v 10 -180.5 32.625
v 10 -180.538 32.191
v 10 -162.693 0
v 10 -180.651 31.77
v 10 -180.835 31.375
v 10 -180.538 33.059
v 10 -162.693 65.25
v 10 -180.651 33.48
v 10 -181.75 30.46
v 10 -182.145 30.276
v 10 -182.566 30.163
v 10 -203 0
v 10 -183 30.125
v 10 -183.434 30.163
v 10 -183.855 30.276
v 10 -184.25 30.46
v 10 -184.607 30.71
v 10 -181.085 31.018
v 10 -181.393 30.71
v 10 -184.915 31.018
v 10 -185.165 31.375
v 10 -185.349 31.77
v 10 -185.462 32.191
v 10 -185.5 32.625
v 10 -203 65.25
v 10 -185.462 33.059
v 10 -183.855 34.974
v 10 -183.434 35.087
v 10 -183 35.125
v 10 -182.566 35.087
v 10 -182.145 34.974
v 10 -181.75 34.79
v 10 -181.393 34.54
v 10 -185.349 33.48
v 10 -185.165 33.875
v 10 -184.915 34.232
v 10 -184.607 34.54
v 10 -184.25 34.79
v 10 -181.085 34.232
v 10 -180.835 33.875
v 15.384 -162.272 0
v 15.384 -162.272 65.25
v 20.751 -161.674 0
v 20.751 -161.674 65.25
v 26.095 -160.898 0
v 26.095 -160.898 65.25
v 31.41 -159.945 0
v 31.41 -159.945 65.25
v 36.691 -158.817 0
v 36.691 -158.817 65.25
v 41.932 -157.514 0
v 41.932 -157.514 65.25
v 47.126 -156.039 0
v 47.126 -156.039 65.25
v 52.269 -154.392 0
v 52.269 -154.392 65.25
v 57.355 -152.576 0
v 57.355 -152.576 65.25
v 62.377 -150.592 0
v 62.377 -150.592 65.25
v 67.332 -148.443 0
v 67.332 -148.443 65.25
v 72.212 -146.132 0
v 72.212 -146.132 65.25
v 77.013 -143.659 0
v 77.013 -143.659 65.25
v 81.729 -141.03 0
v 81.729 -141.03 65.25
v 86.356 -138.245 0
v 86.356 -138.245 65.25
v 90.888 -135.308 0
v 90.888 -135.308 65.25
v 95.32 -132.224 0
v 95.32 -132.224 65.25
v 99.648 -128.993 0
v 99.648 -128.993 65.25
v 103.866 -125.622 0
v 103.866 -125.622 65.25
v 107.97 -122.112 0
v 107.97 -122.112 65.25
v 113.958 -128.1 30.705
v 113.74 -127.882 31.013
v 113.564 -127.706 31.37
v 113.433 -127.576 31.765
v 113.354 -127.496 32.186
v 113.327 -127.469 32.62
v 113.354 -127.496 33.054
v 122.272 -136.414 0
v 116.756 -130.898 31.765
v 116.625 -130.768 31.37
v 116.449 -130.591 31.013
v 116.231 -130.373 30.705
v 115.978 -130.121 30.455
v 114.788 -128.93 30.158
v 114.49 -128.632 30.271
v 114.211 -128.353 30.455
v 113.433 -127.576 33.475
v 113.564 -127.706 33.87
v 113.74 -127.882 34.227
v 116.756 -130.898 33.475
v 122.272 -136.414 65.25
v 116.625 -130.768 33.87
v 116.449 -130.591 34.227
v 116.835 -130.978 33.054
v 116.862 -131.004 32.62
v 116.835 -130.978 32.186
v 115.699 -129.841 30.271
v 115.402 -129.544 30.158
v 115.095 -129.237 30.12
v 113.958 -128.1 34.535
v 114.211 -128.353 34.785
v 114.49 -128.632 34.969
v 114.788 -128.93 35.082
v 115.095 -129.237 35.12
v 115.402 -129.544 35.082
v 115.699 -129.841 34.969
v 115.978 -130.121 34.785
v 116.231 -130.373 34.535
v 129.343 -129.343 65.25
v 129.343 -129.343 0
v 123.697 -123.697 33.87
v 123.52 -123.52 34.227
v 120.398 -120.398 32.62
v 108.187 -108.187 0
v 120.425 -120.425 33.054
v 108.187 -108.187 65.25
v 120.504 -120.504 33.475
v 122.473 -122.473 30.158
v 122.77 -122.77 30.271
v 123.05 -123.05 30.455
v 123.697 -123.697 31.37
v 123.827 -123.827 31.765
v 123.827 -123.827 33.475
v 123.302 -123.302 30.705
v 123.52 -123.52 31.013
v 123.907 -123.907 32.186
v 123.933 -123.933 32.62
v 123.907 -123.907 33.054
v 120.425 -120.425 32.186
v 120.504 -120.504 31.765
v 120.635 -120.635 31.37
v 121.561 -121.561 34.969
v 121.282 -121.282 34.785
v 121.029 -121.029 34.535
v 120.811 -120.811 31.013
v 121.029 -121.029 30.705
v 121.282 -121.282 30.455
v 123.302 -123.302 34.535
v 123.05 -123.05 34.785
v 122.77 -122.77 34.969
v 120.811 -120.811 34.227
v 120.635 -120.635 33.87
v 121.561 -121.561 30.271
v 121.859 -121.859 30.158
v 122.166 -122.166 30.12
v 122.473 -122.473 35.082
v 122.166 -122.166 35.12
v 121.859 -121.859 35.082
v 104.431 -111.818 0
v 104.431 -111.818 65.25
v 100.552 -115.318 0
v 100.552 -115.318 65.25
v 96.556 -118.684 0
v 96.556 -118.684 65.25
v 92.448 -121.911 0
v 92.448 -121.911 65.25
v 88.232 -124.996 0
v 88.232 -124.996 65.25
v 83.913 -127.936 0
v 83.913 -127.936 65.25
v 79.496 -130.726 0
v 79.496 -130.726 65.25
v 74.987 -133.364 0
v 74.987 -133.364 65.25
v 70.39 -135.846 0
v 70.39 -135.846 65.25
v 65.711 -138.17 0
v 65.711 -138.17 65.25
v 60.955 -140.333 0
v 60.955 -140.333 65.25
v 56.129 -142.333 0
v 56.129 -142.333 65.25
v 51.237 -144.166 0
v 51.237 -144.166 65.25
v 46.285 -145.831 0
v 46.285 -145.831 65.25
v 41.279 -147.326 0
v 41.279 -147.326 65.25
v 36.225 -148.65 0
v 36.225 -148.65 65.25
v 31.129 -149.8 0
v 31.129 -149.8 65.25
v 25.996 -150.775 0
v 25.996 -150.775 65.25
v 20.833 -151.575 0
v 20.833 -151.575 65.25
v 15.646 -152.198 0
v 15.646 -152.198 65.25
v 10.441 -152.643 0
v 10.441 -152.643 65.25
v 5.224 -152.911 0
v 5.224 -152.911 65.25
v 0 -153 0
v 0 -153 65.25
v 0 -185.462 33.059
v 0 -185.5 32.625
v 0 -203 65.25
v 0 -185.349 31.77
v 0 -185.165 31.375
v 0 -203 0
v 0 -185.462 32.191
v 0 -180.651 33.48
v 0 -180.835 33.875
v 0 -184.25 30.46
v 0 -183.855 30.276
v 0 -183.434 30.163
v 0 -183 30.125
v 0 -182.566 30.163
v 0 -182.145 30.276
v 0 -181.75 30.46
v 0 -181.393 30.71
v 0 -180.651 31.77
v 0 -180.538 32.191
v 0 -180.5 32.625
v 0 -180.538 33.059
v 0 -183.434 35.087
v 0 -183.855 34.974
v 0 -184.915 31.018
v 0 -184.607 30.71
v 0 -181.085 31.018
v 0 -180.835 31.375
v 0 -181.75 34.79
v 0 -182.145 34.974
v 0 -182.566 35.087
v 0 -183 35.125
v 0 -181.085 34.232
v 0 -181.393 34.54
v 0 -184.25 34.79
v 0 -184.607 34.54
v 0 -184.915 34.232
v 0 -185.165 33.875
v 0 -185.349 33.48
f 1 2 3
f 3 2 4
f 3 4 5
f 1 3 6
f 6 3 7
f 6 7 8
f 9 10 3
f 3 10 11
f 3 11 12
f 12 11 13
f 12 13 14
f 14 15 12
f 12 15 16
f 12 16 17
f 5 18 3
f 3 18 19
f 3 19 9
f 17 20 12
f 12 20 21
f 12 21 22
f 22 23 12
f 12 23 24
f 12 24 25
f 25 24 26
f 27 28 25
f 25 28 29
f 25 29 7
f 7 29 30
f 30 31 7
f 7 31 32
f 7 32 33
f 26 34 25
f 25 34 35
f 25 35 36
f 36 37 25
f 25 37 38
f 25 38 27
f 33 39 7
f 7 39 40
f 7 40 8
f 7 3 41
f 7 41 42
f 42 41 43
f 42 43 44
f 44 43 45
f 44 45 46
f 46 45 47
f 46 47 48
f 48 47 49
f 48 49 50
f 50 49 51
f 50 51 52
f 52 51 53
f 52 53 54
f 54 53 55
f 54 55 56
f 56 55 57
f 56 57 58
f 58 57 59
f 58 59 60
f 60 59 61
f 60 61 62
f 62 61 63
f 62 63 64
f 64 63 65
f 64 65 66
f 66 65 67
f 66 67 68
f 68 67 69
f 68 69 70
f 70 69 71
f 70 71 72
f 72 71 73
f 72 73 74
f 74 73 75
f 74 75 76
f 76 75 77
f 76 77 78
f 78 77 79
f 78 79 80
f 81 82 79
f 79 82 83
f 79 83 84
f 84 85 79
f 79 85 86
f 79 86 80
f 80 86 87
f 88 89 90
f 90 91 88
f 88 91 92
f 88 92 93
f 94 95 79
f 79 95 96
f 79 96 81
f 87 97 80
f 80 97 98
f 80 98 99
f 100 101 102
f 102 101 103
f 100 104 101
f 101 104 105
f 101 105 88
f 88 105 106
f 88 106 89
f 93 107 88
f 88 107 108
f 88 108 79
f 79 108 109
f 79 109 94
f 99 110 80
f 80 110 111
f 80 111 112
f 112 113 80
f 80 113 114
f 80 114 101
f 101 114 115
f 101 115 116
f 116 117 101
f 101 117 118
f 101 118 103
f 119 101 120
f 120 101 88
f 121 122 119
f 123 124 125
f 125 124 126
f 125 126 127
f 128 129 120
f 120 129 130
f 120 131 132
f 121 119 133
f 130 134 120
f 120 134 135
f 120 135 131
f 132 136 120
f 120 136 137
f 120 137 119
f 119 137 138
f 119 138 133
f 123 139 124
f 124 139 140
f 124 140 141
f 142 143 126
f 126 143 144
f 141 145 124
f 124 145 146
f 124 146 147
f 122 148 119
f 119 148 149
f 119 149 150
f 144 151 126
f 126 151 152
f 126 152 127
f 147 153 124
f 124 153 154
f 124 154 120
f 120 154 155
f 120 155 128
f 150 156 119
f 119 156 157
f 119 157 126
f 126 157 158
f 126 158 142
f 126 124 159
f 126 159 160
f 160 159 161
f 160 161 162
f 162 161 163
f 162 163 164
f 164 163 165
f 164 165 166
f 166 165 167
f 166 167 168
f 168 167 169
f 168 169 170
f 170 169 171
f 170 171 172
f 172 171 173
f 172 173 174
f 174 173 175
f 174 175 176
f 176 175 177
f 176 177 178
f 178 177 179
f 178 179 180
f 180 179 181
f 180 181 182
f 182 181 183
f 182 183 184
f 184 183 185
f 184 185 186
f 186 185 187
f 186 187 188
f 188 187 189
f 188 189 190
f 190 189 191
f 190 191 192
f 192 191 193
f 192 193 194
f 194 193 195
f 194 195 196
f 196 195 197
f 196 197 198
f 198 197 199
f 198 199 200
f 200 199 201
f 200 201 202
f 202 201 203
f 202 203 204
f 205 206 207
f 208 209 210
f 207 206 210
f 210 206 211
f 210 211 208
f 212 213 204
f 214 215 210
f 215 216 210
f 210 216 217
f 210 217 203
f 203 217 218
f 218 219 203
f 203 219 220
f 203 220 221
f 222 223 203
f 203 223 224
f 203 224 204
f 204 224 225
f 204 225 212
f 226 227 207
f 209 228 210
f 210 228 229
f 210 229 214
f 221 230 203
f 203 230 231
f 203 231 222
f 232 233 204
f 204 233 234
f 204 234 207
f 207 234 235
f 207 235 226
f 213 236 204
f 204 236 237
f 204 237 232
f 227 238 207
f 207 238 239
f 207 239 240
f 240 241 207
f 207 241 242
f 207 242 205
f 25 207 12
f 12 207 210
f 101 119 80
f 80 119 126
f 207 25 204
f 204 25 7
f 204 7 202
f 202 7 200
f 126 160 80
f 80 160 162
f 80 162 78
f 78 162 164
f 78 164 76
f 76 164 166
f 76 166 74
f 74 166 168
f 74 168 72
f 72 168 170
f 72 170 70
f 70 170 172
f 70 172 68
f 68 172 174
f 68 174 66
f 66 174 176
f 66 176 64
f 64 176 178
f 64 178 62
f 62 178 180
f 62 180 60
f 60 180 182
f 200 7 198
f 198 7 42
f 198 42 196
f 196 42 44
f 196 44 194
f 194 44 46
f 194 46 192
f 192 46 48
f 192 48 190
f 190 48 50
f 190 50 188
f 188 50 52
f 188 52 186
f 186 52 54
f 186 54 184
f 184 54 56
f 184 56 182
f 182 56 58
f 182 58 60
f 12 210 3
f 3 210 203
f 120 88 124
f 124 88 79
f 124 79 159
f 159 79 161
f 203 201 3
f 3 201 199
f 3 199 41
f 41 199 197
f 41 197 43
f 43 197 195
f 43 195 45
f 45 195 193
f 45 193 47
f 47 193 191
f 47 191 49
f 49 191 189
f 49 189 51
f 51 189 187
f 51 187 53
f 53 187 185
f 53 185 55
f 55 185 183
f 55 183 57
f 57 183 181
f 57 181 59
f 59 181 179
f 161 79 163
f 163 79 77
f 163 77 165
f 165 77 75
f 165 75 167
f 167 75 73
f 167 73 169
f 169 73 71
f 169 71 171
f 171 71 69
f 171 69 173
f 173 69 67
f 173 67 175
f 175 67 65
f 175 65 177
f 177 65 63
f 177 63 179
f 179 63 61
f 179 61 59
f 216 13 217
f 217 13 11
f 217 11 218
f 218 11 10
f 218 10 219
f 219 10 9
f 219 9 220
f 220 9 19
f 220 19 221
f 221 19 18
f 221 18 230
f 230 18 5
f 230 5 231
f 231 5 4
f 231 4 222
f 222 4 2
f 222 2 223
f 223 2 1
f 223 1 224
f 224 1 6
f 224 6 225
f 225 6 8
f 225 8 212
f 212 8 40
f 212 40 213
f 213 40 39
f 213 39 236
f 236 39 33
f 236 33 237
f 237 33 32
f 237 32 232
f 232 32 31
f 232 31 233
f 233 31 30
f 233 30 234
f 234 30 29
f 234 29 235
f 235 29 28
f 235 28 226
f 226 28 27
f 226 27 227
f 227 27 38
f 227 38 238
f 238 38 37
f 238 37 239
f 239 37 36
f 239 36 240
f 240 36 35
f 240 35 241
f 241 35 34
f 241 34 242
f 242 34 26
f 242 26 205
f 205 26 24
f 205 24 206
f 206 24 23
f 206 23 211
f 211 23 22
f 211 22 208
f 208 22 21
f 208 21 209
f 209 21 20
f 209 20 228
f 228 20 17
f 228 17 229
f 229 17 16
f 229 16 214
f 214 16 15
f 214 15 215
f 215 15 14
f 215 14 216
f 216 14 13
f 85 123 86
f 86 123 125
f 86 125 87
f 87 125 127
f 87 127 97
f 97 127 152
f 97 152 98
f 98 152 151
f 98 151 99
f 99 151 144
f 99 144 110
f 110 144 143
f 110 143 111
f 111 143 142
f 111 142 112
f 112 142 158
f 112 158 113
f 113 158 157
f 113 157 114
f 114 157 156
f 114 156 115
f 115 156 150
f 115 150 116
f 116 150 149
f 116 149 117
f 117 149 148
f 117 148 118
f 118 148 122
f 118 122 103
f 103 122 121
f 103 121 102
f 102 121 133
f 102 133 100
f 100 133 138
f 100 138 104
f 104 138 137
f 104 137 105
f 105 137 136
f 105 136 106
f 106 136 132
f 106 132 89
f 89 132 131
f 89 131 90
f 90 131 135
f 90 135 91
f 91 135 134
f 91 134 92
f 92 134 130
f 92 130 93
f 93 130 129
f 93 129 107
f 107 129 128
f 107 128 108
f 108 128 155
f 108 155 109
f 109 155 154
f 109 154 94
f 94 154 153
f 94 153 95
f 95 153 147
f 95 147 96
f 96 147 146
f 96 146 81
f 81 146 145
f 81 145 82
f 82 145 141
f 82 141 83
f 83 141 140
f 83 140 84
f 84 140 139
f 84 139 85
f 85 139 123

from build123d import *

# Parameters (mm, degrees)
SALIENTE_EXTRUIR1_DEPTH = 65.25
CROQUIS5_R              = 2.5
CORTAR_EXTRUIR3_DEPTH   = 45
CROQUIS6_R              = 2.5
CORTAR_EXTRUIR4_DEPTH   = 12


with BuildPart() as part:
    # Croquis1 → Saliente-Extruir1 (new body)
    with BuildSketch(Plane.XY):
        with BuildLine():
            Line((129.342755363, -129.342755363), (108.187337522, -108.187337522))
            ThreePointArc((108.187337522, -108.187337522), (58.550565152, -141.353568474), (0, -153))
            Line((0, -153), (0, -163))
            Line((0, -163), (0, -203))
            Line((0, -203), (10, -203))
            Line((10, -203), (10, -162.692962355))
            ThreePointArc((10, -162.692962355), (62.377399476, -150.592363799), (107.970229121, -122.112364745))
            Line((107.970229121, -122.112364745), (122.271687551, -136.413823175))
            Line((122.271687551, -136.413823175), (129.342755363, -129.342755363))
        make_face()
    extrude(amount=SALIENTE_EXTRUIR1_DEPTH)

    # Croquis5 → Cortar-Extruir3 (cut)
    with BuildSketch(Plane(origin=(10, 0, 0), x_dir=(0, 0, -1), z_dir=(1, 0, 0))):
        with Locations((-32.625, -183)):
            Circle(CROQUIS5_R)
    extrude(amount=-CORTAR_EXTRUIR3_DEPTH, mode=Mode.SUBTRACT)

    # Croquis6 → Cortar-Extruir4 (cut)
    with BuildSketch(Plane(origin=(0, 0, 0), x_dir=(0, 0, -1), z_dir=(0.707106781, 0.707106781, 0))):
        with Locations((-32.62, -172.768278829)):
            Circle(CROQUIS6_R)
    extrude(amount=-CORTAR_EXTRUIR4_DEPTH, mode=Mode.SUBTRACT)


solid = part.part
